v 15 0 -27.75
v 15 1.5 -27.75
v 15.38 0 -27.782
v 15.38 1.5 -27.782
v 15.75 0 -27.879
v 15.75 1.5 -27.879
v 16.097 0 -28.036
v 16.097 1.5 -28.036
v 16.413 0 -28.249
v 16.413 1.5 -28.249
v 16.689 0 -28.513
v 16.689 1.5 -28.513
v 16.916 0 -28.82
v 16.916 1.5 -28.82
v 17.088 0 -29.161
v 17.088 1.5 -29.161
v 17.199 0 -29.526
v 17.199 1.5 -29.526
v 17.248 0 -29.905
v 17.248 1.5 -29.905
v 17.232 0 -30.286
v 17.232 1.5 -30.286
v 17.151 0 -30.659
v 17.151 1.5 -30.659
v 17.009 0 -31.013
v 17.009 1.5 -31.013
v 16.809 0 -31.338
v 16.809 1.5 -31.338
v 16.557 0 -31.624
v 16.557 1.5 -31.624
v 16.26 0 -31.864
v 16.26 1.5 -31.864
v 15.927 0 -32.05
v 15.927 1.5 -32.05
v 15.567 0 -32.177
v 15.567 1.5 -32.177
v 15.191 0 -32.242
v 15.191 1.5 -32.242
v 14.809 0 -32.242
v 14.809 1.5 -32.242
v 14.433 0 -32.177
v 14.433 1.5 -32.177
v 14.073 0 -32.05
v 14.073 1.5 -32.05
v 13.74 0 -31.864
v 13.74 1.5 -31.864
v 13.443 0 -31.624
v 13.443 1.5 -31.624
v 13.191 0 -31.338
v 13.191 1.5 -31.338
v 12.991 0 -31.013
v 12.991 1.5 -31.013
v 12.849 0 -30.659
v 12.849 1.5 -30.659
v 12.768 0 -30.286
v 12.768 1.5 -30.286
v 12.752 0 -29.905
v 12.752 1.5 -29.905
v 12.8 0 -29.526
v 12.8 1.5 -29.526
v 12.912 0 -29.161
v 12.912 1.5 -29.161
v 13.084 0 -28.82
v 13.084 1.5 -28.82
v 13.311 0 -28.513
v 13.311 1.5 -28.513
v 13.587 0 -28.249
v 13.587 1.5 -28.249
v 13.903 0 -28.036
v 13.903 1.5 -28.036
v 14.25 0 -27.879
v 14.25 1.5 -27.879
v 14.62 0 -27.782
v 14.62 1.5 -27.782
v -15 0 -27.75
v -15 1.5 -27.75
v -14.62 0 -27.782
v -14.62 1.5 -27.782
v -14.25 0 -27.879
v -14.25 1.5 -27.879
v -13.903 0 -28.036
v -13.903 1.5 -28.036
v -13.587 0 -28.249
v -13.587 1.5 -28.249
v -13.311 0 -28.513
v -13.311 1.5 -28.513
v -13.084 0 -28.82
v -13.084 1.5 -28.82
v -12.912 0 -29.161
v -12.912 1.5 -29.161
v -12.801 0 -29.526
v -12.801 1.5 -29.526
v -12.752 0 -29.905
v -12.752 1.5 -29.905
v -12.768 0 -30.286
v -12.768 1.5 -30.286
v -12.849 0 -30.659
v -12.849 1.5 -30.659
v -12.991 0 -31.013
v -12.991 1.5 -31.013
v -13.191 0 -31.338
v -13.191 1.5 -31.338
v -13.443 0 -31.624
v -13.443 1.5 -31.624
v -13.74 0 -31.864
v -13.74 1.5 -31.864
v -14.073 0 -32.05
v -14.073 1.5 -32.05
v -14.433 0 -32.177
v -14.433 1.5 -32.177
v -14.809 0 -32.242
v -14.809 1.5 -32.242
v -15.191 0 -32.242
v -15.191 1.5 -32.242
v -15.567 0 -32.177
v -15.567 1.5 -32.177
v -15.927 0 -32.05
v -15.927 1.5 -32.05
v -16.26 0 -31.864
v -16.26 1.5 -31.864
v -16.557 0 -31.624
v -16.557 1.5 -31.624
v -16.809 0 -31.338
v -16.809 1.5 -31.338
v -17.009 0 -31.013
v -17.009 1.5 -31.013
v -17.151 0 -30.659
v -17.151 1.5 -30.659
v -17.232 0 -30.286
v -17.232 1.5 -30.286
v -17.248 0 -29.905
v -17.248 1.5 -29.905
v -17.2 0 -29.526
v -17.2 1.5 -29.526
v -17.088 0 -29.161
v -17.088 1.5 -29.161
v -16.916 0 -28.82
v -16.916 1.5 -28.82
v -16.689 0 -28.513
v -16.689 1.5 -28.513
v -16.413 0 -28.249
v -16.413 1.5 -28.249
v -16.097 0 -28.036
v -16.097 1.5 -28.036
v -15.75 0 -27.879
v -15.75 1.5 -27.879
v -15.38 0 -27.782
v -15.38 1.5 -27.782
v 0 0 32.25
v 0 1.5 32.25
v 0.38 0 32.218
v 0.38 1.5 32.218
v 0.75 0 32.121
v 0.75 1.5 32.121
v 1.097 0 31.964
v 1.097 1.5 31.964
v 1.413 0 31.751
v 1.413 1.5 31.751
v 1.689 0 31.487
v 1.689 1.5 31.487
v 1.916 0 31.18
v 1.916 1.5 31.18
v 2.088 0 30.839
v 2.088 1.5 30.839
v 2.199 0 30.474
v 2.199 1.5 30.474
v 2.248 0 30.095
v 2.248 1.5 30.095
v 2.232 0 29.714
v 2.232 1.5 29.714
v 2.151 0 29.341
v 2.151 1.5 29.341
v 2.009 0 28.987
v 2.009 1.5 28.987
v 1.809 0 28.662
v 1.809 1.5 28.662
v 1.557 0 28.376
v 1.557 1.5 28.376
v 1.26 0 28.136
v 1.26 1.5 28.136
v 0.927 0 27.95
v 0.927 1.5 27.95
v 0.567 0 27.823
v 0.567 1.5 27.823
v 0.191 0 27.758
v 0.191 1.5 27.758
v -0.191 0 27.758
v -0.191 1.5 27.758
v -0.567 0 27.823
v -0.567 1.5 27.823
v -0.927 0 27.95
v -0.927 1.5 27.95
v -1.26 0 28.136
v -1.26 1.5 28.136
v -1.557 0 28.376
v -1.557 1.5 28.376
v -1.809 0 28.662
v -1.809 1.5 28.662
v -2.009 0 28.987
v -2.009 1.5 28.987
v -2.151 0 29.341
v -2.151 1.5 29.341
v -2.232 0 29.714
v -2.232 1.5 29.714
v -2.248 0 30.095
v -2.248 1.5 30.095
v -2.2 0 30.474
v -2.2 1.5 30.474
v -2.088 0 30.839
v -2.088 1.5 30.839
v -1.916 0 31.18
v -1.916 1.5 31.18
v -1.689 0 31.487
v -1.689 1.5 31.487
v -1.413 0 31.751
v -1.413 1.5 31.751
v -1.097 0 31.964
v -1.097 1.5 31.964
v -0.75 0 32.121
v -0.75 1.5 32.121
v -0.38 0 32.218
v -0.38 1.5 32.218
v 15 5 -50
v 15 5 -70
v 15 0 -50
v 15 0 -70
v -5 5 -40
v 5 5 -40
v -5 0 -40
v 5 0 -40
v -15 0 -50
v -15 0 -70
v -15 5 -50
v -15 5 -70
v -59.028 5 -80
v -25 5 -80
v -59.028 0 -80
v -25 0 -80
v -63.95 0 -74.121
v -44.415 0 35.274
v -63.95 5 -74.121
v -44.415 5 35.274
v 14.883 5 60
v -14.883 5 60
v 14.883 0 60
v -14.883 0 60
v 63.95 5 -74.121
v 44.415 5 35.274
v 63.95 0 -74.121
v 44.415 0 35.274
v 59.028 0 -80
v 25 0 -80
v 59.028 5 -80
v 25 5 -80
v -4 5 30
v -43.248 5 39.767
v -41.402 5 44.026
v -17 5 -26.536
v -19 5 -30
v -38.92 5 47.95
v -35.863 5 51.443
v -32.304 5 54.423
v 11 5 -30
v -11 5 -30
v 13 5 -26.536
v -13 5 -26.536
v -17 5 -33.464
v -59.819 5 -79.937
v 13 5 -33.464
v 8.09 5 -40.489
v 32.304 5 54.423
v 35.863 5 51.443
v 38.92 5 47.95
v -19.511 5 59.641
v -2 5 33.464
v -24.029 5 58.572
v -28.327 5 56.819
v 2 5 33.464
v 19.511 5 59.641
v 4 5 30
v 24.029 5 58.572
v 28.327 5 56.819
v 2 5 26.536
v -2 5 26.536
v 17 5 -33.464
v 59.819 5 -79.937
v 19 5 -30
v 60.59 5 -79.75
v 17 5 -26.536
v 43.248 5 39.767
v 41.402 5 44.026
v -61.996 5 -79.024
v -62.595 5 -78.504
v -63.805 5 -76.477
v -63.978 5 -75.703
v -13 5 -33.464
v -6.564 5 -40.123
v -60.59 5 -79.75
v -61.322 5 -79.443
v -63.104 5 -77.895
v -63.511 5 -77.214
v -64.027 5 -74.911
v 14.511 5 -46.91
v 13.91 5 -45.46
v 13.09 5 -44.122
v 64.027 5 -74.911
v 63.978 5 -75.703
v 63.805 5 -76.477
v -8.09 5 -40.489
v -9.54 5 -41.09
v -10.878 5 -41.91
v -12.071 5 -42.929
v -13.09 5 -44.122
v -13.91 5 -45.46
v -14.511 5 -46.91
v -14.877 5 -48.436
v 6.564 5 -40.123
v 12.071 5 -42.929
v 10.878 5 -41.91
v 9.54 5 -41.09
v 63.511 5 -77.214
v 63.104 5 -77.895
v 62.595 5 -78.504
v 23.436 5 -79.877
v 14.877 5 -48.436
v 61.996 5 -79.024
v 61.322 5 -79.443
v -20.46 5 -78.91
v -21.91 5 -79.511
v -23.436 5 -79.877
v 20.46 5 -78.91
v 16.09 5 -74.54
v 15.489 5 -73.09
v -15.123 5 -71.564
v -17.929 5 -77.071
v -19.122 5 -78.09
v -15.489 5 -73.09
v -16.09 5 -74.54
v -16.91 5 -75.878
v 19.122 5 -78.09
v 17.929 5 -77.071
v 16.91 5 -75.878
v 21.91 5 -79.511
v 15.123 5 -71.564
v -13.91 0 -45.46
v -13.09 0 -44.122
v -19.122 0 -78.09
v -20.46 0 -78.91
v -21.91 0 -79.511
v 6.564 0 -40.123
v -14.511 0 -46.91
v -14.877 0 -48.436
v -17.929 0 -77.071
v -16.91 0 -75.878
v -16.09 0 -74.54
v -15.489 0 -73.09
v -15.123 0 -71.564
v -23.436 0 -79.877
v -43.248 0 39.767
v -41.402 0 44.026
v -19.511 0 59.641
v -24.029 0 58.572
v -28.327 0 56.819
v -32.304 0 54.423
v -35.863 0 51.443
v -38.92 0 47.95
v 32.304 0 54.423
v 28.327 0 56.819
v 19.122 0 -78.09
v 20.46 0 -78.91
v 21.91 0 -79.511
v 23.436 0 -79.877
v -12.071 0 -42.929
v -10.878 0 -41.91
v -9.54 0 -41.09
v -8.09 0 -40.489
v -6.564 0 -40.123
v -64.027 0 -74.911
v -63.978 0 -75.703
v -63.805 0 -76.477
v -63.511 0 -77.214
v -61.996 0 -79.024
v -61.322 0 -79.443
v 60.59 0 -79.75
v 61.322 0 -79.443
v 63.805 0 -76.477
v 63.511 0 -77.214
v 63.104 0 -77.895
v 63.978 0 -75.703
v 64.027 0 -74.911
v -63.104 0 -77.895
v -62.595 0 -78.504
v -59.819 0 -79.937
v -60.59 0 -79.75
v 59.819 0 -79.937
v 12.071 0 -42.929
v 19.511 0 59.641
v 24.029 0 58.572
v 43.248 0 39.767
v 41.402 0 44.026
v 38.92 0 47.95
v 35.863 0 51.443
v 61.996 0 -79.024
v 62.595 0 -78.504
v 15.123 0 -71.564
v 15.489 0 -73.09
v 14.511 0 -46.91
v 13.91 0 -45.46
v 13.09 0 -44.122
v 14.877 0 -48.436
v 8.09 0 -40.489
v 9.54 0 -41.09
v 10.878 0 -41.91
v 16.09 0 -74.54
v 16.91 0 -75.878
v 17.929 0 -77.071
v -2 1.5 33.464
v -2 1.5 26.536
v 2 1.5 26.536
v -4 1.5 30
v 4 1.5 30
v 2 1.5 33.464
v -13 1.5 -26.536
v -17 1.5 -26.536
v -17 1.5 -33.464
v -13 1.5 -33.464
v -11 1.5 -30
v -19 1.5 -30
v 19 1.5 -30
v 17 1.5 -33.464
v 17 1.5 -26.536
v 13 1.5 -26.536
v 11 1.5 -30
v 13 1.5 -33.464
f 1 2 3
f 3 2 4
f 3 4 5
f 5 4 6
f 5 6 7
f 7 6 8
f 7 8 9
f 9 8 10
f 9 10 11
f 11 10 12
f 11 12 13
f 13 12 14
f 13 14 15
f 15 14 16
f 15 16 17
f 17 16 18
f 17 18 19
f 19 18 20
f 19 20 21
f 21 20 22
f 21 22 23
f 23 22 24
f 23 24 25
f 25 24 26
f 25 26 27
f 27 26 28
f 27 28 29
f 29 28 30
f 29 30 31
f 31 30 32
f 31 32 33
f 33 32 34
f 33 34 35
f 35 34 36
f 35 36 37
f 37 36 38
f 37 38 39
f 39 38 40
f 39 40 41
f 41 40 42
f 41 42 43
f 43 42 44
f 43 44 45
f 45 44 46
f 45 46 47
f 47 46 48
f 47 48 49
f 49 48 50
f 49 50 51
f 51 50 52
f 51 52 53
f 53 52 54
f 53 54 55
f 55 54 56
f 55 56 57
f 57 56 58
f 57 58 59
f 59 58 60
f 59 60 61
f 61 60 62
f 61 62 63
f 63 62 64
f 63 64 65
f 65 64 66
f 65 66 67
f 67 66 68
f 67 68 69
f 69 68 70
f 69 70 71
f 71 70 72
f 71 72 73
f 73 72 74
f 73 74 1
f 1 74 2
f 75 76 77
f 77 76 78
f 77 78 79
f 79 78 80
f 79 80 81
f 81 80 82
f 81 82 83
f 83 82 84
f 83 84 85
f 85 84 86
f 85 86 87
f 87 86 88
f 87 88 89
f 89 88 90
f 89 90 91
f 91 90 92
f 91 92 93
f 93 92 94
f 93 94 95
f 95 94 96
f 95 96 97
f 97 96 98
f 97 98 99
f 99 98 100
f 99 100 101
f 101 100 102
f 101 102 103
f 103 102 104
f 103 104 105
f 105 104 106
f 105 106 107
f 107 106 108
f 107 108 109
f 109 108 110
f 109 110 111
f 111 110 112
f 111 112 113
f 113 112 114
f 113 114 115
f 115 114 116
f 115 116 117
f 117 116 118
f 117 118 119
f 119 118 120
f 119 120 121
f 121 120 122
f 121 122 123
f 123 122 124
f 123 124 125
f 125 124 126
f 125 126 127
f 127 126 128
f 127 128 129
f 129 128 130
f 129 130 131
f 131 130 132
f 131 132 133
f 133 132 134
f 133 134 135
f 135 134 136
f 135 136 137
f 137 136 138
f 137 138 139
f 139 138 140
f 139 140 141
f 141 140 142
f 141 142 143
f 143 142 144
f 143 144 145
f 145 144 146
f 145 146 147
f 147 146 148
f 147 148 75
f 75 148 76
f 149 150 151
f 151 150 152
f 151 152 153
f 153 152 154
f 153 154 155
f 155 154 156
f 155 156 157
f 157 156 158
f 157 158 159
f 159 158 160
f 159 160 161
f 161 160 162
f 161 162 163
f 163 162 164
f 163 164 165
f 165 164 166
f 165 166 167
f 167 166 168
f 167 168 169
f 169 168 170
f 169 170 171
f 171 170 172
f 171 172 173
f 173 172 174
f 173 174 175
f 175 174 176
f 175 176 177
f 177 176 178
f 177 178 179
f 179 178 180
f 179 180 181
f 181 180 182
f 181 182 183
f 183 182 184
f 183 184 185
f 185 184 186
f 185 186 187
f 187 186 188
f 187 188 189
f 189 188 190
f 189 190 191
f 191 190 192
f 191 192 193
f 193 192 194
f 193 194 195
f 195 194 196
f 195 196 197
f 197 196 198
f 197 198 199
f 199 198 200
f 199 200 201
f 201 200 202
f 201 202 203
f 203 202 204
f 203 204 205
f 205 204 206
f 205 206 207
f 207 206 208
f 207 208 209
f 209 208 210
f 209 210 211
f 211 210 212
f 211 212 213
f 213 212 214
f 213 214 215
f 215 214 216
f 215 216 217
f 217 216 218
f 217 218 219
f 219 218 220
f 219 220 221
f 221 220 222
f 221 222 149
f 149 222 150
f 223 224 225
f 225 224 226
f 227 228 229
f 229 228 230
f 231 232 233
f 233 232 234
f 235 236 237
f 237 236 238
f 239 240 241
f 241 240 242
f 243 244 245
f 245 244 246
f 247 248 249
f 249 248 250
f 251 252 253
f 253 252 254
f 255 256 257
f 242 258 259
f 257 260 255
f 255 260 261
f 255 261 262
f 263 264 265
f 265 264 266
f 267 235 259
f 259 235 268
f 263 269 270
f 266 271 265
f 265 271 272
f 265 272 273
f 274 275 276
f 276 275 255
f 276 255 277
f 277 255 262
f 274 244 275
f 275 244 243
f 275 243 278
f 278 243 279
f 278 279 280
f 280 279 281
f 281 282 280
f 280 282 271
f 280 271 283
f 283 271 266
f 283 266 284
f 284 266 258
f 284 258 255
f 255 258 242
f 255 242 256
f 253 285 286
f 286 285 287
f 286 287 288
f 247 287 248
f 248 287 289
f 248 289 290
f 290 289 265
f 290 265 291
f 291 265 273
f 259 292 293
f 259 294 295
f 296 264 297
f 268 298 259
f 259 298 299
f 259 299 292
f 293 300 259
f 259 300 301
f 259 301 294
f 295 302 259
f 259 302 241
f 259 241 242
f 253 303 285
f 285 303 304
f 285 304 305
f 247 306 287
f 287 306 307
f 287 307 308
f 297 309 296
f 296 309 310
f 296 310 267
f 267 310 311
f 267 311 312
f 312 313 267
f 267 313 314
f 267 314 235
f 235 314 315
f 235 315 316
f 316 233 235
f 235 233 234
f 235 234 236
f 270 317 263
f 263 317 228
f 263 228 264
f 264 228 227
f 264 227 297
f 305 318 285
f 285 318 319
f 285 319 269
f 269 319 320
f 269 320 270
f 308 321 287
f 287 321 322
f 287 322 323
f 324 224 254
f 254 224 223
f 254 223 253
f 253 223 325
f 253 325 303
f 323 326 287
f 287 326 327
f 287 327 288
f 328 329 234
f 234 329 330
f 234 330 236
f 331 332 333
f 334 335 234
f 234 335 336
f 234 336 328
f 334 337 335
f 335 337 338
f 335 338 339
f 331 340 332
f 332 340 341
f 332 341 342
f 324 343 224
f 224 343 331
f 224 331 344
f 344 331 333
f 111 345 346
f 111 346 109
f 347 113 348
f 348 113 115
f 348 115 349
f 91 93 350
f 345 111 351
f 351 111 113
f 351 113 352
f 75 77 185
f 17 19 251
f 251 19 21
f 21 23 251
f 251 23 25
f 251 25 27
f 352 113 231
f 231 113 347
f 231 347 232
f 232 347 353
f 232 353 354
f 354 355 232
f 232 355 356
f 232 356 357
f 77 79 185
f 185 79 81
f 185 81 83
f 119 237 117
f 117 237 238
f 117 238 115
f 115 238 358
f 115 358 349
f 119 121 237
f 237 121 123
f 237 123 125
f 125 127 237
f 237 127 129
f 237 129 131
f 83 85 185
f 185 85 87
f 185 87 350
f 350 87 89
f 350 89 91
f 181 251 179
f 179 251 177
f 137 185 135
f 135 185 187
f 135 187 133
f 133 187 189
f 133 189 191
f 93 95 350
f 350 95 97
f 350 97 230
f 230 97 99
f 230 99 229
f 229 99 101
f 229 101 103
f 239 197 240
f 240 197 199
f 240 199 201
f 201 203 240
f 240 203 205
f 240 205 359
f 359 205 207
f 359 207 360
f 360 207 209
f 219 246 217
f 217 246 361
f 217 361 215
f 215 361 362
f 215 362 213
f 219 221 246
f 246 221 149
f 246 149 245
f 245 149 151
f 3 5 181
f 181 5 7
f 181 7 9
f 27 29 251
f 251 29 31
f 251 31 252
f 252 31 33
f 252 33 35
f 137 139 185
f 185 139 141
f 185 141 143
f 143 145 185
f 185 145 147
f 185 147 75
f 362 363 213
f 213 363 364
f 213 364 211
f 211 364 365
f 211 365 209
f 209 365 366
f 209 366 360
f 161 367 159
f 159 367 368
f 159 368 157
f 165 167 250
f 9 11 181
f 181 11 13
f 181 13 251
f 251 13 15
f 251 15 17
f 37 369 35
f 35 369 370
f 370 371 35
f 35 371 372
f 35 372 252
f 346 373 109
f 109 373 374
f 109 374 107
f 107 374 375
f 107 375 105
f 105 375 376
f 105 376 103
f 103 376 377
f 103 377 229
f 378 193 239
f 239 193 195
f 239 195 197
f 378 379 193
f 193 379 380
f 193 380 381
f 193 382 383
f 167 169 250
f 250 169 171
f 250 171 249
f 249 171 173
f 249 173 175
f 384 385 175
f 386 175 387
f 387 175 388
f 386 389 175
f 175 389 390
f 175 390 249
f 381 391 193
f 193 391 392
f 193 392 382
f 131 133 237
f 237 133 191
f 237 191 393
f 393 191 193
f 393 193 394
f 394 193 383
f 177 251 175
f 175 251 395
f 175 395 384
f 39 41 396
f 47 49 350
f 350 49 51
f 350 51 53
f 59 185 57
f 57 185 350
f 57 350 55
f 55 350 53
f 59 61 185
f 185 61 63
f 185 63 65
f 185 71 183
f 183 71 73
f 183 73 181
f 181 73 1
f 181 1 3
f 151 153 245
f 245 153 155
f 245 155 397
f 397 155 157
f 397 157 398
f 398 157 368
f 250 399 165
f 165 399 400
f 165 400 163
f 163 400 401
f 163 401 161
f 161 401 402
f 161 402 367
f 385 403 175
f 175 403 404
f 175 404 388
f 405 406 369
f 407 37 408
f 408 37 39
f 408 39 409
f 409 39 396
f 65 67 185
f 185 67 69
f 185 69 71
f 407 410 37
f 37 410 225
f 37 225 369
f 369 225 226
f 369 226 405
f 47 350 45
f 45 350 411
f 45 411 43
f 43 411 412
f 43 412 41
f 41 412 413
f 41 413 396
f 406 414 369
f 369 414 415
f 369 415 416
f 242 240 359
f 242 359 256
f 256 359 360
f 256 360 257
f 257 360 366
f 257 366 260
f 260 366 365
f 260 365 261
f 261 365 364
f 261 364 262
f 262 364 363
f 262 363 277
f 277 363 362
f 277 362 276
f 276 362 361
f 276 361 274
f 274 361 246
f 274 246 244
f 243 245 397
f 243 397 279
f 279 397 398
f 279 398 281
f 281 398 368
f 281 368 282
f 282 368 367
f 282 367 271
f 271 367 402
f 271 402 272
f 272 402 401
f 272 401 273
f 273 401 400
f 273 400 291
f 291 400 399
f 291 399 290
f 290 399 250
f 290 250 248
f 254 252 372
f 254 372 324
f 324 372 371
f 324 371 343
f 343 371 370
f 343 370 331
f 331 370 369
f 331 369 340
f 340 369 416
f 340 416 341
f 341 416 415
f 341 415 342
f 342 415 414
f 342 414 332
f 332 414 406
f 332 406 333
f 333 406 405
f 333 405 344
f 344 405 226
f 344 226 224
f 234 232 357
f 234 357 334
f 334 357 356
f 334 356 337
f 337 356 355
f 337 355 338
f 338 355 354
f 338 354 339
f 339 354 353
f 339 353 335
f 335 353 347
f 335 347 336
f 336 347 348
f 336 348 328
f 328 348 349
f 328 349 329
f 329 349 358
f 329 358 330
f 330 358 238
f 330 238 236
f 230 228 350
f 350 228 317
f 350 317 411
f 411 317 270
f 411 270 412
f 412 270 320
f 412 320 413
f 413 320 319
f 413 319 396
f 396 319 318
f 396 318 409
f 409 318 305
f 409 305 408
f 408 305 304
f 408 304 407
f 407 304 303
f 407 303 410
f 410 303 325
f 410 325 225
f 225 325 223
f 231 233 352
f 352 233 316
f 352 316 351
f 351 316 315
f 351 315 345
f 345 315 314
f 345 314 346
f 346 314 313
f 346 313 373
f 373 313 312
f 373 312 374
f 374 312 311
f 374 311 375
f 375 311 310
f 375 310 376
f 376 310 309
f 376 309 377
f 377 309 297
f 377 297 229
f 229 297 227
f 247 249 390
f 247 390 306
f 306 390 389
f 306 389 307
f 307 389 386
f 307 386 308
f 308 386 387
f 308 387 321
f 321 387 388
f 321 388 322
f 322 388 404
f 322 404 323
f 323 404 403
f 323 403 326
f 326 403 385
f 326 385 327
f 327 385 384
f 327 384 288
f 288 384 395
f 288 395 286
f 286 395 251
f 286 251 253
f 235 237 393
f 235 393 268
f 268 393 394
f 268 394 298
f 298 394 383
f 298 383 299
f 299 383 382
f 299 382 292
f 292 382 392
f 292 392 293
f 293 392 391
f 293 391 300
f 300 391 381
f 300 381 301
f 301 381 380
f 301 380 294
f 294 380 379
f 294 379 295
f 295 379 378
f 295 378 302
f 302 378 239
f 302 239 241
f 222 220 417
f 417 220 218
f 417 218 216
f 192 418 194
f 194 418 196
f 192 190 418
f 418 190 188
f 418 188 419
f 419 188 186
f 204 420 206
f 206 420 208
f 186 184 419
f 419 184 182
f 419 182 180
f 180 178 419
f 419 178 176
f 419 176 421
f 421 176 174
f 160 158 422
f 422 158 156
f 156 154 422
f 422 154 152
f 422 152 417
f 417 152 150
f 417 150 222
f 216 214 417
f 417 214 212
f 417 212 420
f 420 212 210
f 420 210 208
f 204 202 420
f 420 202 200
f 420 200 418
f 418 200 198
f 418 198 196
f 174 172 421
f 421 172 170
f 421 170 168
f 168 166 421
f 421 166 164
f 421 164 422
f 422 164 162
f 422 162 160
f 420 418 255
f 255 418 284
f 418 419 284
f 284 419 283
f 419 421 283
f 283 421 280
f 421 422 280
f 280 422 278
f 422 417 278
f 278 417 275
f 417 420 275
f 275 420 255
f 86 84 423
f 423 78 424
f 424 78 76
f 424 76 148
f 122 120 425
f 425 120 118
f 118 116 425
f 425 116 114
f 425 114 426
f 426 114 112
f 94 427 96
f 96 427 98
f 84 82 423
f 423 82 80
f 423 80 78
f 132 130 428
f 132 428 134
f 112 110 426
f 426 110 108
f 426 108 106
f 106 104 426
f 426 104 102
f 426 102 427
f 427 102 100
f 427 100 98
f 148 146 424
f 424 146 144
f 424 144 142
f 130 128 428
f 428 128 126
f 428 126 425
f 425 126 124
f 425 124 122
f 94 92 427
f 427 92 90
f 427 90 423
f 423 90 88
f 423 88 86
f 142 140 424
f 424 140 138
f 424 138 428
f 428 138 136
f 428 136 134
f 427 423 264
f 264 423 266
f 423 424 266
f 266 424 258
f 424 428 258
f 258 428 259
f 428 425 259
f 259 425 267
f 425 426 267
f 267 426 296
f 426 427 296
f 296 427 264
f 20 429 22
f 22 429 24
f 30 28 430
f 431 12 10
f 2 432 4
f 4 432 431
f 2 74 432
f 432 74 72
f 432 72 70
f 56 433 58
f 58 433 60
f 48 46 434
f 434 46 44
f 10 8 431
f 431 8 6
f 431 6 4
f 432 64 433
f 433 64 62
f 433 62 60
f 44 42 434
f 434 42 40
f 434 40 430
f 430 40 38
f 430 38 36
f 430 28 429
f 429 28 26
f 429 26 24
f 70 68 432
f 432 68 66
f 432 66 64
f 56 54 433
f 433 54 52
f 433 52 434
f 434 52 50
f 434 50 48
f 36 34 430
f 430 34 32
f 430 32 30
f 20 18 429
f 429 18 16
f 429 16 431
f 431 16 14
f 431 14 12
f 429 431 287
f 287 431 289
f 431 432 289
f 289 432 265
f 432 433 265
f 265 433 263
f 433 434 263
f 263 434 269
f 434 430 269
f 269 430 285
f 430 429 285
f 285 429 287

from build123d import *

# Parameters (mm, degrees)
BOSS_EXTRUDE1_DEPTH = 5
SKETCH2_R           = 2.25
CUT_EXTRUDE1_DEPTH  = 5
FILLET7_R           = 30
FILLET8_R           = 30
FILLET9_R           = 10
FILLET10_R          = 10
FILLET11_R          = 10
FILLET12_R          = 10
FILLET13_R          = 5
FILLET14_R          = 5
CUT_EXTRUDE2_DEPTH  = 3.5


with BuildPart() as part:
    # Sketch1 → Boss-Extrude1 (new body)
    with BuildSketch(Plane(origin=(0, 0, 0), x_dir=(1, 0, 0), z_dir=(0, 1, 0))):
        Polygon((-15, 40), (-15, 80), (-65, 80), (-40, -60), (0, -60), (40, -60), (65, 80), (15, 80), (15, 40), align=None)
    extrude(amount=BOSS_EXTRUDE1_DEPTH)

    # Sketch2 → Cut-Extrude1 (cut)
    with BuildSketch(Plane(origin=(0, 5, 0), x_dir=(1, 0, 0), z_dir=(0, 1, 0))):
        with Locations(Location((0, -30, 0), (0, 0, 270))):
            Circle(SKETCH2_R)
        with Locations(Location((-15, 30, 0), (0, 0, 270))):
            Circle(SKETCH2_R)
        with Locations(Location((15, 30, 0), (0, 0, 270))):
            Circle(SKETCH2_R)
    extrude(amount=-CUT_EXTRUDE1_DEPTH, mode=Mode.SUBTRACT)

    # Fillet7
    fillet7_edges = [part.edges().sort_by_distance(p)[0] for p in [
        (-40, 2.5, 60),
    ]]
    fillet(fillet7_edges, radius=FILLET7_R)

    # Fillet8
    fillet8_edges = [part.edges().sort_by_distance(p)[0] for p in [
        (40, 2.5, 60),
    ]]
    fillet(fillet8_edges, radius=FILLET8_R)

    # Fillet9
    fillet9_edges = [part.edges().sort_by_distance(p)[0] for p in [
        (15, 2.5, -80),
    ]]
    fillet(fillet9_edges, radius=FILLET9_R)

    # Fillet10
    fillet10_edges = [part.edges().sort_by_distance(p)[0] for p in [
        (-15, 2.5, -80),
    ]]
    fillet(fillet10_edges, radius=FILLET10_R)

    # Fillet11
    fillet11_edges = [part.edges().sort_by_distance(p)[0] for p in [
        (15, 2.5, -40),
    ]]
    fillet(fillet11_edges, radius=FILLET11_R)

    # Fillet12
    fillet12_edges = [part.edges().sort_by_distance(p)[0] for p in [
        (-15, 2.5, -40),
    ]]
    fillet(fillet12_edges, radius=FILLET12_R)

    # Fillet13
    fillet13_edges = [part.edges().sort_by_distance(p)[0] for p in [
        (65, 2.5, -80),
    ]]
    fillet(fillet13_edges, radius=FILLET13_R)

    # Fillet14
    fillet14_edges = [part.edges().sort_by_distance(p)[0] for p in [
        (-65, 2.5, -80),
    ]]
    fillet(fillet14_edges, radius=FILLET14_R)

    # Sketch3 → Cut-Extrude2 (cut)
    with BuildSketch(Plane(origin=(0, 5, 0), x_dir=(1, 0, 0), z_dir=(0, 1, 0))):
        Polygon((-4, -30), (-2, -33.464101615), (2, -33.464101615), (4, -30), (2, -26.535898385), (-2, -26.535898385), align=None)
        Polygon((-11, 30), (-13, 33.464101615), (-17, 33.464101615), (-19, 30), (-17, 26.535898385), (-13, 26.535898385), align=None)
        Polygon((19, 30), (17, 33.464101615), (13, 33.464101615), (11, 30), (13, 26.535898385), (17, 26.535898385), align=None)
    extrude(amount=-CUT_EXTRUDE2_DEPTH, mode=Mode.SUBTRACT)


solid = part.part
